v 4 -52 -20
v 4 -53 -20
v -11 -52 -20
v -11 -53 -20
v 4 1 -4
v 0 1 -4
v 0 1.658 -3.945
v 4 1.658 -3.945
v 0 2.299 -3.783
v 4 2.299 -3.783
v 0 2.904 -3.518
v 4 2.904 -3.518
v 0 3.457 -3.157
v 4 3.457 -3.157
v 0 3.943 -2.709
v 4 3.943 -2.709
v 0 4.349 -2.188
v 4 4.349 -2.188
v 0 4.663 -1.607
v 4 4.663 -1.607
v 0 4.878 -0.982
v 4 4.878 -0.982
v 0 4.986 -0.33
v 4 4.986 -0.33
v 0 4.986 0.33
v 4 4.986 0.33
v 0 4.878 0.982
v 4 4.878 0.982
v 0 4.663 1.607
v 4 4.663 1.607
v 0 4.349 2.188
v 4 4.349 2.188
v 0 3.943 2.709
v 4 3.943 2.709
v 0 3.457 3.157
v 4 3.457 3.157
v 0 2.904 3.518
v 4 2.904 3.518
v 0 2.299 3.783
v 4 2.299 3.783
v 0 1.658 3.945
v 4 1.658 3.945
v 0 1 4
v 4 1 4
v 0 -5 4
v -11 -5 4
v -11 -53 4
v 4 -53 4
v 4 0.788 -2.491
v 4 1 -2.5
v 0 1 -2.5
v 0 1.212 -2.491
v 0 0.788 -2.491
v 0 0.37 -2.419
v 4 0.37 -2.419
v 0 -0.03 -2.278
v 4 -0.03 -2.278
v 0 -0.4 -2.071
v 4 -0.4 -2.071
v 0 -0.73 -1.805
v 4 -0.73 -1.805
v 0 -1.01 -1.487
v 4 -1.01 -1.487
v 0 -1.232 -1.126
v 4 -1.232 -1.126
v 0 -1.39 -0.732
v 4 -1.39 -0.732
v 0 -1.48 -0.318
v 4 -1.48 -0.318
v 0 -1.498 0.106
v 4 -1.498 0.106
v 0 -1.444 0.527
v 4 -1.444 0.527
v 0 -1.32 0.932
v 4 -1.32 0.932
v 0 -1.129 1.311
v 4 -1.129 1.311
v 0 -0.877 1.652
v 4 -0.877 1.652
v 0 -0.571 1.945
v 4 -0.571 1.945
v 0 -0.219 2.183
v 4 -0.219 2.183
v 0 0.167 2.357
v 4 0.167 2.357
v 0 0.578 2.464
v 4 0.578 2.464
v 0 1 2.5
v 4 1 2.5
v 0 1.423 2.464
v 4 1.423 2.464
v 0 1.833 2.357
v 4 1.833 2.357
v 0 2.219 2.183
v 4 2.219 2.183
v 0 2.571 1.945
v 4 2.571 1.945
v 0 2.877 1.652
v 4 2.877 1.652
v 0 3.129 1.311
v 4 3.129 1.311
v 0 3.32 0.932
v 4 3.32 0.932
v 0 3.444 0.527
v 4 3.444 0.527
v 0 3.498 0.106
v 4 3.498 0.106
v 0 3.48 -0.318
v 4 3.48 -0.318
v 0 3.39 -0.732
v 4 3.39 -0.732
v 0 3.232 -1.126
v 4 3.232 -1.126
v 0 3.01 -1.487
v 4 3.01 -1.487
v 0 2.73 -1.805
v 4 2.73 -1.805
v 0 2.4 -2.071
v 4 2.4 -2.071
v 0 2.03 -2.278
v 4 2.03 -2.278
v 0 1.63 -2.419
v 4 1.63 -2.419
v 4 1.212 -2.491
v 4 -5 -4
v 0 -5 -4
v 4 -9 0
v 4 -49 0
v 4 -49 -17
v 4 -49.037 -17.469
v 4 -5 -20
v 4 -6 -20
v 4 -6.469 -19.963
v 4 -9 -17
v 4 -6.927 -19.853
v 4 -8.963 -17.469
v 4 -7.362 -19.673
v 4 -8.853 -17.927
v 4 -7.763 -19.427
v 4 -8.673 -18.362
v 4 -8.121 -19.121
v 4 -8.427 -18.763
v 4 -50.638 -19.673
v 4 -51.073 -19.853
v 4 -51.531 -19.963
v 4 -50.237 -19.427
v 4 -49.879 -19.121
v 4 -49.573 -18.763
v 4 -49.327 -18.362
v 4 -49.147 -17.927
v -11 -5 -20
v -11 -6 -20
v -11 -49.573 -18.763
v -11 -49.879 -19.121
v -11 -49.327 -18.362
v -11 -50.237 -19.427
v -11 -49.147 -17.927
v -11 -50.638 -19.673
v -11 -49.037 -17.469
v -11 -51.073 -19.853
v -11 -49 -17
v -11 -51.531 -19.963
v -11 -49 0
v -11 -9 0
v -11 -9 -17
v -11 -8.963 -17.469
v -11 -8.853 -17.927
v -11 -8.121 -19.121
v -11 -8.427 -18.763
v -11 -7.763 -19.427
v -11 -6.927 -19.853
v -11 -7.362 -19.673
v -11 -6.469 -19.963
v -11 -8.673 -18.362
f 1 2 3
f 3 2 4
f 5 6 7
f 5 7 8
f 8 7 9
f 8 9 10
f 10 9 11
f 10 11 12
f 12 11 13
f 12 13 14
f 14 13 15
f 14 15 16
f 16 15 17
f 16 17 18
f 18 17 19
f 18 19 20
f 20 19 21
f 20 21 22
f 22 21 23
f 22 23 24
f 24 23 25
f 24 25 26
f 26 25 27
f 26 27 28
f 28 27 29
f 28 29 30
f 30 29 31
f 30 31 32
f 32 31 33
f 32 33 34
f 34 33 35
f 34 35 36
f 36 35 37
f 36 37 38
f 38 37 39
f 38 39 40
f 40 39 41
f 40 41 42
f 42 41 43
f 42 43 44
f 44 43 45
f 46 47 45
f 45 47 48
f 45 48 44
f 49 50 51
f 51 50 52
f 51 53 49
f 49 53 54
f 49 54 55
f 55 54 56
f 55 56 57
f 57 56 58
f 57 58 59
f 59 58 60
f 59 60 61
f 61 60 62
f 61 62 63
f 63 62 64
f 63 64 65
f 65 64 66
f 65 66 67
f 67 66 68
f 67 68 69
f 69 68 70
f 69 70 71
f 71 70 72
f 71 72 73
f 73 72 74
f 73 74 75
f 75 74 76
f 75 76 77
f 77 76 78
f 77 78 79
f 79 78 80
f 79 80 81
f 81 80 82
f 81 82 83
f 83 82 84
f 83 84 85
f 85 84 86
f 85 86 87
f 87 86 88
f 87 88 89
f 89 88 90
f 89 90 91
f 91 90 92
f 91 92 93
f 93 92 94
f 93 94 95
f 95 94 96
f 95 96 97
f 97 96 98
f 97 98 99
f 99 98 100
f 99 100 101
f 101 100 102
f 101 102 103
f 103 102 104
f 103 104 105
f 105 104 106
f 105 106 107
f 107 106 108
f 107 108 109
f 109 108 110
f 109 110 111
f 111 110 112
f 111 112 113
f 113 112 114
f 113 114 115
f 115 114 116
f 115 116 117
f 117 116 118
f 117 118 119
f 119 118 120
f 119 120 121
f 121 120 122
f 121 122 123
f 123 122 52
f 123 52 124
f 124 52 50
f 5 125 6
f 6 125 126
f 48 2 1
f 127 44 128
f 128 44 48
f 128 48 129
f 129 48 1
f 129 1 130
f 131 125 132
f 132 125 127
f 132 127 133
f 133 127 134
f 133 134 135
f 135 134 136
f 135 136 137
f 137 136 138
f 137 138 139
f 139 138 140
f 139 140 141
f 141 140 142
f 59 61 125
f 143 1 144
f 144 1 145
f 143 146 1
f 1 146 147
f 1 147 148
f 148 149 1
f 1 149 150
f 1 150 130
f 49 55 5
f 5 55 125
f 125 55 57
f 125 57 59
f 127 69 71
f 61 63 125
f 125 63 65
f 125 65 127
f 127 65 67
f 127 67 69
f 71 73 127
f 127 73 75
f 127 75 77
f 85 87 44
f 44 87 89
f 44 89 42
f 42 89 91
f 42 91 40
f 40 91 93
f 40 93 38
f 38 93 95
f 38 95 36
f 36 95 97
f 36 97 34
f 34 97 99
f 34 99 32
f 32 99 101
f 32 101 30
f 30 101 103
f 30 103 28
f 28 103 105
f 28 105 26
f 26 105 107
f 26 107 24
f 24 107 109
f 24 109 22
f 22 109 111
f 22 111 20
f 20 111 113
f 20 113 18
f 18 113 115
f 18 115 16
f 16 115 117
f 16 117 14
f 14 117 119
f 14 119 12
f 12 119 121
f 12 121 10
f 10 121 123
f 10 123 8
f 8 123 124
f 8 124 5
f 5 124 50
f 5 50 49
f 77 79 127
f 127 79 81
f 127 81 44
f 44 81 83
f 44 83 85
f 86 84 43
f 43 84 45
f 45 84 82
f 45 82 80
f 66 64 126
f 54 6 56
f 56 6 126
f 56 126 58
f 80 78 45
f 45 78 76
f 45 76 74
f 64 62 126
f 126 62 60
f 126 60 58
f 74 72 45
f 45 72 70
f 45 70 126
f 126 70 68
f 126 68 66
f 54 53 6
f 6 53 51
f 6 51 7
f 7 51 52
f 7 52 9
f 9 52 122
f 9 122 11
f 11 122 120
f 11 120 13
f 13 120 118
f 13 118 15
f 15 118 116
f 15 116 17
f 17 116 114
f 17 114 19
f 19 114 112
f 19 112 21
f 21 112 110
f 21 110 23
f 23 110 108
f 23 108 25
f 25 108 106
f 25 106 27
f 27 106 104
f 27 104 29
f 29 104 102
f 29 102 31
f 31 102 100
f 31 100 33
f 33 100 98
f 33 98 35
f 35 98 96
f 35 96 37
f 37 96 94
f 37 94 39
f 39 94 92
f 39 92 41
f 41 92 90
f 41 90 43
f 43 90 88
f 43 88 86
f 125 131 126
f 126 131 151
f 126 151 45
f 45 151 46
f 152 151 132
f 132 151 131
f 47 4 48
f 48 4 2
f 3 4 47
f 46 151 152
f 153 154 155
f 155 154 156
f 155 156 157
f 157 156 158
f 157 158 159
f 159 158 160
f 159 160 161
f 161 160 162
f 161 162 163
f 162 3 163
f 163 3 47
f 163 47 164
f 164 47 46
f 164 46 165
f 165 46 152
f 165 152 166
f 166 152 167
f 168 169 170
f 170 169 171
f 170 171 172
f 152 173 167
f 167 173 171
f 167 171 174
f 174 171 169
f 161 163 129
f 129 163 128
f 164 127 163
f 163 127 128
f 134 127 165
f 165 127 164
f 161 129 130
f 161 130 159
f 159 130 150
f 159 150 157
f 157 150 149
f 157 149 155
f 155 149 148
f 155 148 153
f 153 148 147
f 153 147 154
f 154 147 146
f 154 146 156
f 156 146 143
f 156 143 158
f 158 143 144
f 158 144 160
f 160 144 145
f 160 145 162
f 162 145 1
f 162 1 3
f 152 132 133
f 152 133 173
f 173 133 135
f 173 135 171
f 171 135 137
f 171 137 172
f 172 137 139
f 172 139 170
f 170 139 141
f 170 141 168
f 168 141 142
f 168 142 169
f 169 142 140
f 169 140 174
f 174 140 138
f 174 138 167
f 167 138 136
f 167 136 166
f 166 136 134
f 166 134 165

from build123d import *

# Parameters (mm, degrees)
SKETCH2_R           = 4
SKETCH2_R_2         = 2.5
BOSS_EXTRUDE1_DEPTH = 4
SKETCH3_W           = 24
SKETCH3_H           = 48
BOSS_EXTRUDE2_DEPTH = 15
SKETCH4_W           = 20
SKETCH4_H           = 40
CUT_EXTRUDE1_DEPTH  = 15
FILLET1_R           = 3


with BuildPart() as part:
    # Sketch2 → Boss-Extrude1 (new body)
    # profile 1 of 2: a face of its own
    with BuildSketch(Plane(origin=(0, 0, 0), x_dir=(0, 0, -1), z_dir=(1, 0, 0))):
        with Locations((0, 1)):
            Circle(SKETCH2_R)
        with Locations((0, 1)):
            Circle(SKETCH2_R_2, mode=Mode.SUBTRACT)
    # profile 2 of 2: a face of its own
    with BuildSketch(Plane(origin=(0, 0, 0), x_dir=(0, 0, -1), z_dir=(1, 0, 0))):
        with BuildLine():
            Line((-4, 1), (-4, -5))
            Line((-4, -5), (4, -5))
            Line((4, -5), (4, 1))
            ThreePointArc((4, 1), (0, -3), (-4, 1))
        make_face()
    extrude(amount=BOSS_EXTRUDE1_DEPTH)

    # Sketch3 → Boss-Extrude2 (add)
    with BuildSketch(Plane(origin=(4, 0, 0), x_dir=(0, 0, -1), z_dir=(1, 0, 0))):
        with Locations((8, -29)):
            Rectangle(SKETCH3_W, SKETCH3_H)
    extrude(amount=-BOSS_EXTRUDE2_DEPTH)

    # Sketch4 → Cut-Extrude1 (cut)
    with BuildSketch(Plane.ZY.offset(11)):
        with Locations((-10, -29)):
            Rectangle(SKETCH4_W, SKETCH4_H)
    extrude(amount=-CUT_EXTRUDE1_DEPTH, mode=Mode.SUBTRACT)

    # Fillet1
    fillet1_edges = [part.edges().sort_by_distance(p)[0] for p in [
        (-3.5, -9, -20),
        (-3.5, -49, -20),
    ]]
    fillet(fillet1_edges, radius=FILLET1_R)


solid = part.part
